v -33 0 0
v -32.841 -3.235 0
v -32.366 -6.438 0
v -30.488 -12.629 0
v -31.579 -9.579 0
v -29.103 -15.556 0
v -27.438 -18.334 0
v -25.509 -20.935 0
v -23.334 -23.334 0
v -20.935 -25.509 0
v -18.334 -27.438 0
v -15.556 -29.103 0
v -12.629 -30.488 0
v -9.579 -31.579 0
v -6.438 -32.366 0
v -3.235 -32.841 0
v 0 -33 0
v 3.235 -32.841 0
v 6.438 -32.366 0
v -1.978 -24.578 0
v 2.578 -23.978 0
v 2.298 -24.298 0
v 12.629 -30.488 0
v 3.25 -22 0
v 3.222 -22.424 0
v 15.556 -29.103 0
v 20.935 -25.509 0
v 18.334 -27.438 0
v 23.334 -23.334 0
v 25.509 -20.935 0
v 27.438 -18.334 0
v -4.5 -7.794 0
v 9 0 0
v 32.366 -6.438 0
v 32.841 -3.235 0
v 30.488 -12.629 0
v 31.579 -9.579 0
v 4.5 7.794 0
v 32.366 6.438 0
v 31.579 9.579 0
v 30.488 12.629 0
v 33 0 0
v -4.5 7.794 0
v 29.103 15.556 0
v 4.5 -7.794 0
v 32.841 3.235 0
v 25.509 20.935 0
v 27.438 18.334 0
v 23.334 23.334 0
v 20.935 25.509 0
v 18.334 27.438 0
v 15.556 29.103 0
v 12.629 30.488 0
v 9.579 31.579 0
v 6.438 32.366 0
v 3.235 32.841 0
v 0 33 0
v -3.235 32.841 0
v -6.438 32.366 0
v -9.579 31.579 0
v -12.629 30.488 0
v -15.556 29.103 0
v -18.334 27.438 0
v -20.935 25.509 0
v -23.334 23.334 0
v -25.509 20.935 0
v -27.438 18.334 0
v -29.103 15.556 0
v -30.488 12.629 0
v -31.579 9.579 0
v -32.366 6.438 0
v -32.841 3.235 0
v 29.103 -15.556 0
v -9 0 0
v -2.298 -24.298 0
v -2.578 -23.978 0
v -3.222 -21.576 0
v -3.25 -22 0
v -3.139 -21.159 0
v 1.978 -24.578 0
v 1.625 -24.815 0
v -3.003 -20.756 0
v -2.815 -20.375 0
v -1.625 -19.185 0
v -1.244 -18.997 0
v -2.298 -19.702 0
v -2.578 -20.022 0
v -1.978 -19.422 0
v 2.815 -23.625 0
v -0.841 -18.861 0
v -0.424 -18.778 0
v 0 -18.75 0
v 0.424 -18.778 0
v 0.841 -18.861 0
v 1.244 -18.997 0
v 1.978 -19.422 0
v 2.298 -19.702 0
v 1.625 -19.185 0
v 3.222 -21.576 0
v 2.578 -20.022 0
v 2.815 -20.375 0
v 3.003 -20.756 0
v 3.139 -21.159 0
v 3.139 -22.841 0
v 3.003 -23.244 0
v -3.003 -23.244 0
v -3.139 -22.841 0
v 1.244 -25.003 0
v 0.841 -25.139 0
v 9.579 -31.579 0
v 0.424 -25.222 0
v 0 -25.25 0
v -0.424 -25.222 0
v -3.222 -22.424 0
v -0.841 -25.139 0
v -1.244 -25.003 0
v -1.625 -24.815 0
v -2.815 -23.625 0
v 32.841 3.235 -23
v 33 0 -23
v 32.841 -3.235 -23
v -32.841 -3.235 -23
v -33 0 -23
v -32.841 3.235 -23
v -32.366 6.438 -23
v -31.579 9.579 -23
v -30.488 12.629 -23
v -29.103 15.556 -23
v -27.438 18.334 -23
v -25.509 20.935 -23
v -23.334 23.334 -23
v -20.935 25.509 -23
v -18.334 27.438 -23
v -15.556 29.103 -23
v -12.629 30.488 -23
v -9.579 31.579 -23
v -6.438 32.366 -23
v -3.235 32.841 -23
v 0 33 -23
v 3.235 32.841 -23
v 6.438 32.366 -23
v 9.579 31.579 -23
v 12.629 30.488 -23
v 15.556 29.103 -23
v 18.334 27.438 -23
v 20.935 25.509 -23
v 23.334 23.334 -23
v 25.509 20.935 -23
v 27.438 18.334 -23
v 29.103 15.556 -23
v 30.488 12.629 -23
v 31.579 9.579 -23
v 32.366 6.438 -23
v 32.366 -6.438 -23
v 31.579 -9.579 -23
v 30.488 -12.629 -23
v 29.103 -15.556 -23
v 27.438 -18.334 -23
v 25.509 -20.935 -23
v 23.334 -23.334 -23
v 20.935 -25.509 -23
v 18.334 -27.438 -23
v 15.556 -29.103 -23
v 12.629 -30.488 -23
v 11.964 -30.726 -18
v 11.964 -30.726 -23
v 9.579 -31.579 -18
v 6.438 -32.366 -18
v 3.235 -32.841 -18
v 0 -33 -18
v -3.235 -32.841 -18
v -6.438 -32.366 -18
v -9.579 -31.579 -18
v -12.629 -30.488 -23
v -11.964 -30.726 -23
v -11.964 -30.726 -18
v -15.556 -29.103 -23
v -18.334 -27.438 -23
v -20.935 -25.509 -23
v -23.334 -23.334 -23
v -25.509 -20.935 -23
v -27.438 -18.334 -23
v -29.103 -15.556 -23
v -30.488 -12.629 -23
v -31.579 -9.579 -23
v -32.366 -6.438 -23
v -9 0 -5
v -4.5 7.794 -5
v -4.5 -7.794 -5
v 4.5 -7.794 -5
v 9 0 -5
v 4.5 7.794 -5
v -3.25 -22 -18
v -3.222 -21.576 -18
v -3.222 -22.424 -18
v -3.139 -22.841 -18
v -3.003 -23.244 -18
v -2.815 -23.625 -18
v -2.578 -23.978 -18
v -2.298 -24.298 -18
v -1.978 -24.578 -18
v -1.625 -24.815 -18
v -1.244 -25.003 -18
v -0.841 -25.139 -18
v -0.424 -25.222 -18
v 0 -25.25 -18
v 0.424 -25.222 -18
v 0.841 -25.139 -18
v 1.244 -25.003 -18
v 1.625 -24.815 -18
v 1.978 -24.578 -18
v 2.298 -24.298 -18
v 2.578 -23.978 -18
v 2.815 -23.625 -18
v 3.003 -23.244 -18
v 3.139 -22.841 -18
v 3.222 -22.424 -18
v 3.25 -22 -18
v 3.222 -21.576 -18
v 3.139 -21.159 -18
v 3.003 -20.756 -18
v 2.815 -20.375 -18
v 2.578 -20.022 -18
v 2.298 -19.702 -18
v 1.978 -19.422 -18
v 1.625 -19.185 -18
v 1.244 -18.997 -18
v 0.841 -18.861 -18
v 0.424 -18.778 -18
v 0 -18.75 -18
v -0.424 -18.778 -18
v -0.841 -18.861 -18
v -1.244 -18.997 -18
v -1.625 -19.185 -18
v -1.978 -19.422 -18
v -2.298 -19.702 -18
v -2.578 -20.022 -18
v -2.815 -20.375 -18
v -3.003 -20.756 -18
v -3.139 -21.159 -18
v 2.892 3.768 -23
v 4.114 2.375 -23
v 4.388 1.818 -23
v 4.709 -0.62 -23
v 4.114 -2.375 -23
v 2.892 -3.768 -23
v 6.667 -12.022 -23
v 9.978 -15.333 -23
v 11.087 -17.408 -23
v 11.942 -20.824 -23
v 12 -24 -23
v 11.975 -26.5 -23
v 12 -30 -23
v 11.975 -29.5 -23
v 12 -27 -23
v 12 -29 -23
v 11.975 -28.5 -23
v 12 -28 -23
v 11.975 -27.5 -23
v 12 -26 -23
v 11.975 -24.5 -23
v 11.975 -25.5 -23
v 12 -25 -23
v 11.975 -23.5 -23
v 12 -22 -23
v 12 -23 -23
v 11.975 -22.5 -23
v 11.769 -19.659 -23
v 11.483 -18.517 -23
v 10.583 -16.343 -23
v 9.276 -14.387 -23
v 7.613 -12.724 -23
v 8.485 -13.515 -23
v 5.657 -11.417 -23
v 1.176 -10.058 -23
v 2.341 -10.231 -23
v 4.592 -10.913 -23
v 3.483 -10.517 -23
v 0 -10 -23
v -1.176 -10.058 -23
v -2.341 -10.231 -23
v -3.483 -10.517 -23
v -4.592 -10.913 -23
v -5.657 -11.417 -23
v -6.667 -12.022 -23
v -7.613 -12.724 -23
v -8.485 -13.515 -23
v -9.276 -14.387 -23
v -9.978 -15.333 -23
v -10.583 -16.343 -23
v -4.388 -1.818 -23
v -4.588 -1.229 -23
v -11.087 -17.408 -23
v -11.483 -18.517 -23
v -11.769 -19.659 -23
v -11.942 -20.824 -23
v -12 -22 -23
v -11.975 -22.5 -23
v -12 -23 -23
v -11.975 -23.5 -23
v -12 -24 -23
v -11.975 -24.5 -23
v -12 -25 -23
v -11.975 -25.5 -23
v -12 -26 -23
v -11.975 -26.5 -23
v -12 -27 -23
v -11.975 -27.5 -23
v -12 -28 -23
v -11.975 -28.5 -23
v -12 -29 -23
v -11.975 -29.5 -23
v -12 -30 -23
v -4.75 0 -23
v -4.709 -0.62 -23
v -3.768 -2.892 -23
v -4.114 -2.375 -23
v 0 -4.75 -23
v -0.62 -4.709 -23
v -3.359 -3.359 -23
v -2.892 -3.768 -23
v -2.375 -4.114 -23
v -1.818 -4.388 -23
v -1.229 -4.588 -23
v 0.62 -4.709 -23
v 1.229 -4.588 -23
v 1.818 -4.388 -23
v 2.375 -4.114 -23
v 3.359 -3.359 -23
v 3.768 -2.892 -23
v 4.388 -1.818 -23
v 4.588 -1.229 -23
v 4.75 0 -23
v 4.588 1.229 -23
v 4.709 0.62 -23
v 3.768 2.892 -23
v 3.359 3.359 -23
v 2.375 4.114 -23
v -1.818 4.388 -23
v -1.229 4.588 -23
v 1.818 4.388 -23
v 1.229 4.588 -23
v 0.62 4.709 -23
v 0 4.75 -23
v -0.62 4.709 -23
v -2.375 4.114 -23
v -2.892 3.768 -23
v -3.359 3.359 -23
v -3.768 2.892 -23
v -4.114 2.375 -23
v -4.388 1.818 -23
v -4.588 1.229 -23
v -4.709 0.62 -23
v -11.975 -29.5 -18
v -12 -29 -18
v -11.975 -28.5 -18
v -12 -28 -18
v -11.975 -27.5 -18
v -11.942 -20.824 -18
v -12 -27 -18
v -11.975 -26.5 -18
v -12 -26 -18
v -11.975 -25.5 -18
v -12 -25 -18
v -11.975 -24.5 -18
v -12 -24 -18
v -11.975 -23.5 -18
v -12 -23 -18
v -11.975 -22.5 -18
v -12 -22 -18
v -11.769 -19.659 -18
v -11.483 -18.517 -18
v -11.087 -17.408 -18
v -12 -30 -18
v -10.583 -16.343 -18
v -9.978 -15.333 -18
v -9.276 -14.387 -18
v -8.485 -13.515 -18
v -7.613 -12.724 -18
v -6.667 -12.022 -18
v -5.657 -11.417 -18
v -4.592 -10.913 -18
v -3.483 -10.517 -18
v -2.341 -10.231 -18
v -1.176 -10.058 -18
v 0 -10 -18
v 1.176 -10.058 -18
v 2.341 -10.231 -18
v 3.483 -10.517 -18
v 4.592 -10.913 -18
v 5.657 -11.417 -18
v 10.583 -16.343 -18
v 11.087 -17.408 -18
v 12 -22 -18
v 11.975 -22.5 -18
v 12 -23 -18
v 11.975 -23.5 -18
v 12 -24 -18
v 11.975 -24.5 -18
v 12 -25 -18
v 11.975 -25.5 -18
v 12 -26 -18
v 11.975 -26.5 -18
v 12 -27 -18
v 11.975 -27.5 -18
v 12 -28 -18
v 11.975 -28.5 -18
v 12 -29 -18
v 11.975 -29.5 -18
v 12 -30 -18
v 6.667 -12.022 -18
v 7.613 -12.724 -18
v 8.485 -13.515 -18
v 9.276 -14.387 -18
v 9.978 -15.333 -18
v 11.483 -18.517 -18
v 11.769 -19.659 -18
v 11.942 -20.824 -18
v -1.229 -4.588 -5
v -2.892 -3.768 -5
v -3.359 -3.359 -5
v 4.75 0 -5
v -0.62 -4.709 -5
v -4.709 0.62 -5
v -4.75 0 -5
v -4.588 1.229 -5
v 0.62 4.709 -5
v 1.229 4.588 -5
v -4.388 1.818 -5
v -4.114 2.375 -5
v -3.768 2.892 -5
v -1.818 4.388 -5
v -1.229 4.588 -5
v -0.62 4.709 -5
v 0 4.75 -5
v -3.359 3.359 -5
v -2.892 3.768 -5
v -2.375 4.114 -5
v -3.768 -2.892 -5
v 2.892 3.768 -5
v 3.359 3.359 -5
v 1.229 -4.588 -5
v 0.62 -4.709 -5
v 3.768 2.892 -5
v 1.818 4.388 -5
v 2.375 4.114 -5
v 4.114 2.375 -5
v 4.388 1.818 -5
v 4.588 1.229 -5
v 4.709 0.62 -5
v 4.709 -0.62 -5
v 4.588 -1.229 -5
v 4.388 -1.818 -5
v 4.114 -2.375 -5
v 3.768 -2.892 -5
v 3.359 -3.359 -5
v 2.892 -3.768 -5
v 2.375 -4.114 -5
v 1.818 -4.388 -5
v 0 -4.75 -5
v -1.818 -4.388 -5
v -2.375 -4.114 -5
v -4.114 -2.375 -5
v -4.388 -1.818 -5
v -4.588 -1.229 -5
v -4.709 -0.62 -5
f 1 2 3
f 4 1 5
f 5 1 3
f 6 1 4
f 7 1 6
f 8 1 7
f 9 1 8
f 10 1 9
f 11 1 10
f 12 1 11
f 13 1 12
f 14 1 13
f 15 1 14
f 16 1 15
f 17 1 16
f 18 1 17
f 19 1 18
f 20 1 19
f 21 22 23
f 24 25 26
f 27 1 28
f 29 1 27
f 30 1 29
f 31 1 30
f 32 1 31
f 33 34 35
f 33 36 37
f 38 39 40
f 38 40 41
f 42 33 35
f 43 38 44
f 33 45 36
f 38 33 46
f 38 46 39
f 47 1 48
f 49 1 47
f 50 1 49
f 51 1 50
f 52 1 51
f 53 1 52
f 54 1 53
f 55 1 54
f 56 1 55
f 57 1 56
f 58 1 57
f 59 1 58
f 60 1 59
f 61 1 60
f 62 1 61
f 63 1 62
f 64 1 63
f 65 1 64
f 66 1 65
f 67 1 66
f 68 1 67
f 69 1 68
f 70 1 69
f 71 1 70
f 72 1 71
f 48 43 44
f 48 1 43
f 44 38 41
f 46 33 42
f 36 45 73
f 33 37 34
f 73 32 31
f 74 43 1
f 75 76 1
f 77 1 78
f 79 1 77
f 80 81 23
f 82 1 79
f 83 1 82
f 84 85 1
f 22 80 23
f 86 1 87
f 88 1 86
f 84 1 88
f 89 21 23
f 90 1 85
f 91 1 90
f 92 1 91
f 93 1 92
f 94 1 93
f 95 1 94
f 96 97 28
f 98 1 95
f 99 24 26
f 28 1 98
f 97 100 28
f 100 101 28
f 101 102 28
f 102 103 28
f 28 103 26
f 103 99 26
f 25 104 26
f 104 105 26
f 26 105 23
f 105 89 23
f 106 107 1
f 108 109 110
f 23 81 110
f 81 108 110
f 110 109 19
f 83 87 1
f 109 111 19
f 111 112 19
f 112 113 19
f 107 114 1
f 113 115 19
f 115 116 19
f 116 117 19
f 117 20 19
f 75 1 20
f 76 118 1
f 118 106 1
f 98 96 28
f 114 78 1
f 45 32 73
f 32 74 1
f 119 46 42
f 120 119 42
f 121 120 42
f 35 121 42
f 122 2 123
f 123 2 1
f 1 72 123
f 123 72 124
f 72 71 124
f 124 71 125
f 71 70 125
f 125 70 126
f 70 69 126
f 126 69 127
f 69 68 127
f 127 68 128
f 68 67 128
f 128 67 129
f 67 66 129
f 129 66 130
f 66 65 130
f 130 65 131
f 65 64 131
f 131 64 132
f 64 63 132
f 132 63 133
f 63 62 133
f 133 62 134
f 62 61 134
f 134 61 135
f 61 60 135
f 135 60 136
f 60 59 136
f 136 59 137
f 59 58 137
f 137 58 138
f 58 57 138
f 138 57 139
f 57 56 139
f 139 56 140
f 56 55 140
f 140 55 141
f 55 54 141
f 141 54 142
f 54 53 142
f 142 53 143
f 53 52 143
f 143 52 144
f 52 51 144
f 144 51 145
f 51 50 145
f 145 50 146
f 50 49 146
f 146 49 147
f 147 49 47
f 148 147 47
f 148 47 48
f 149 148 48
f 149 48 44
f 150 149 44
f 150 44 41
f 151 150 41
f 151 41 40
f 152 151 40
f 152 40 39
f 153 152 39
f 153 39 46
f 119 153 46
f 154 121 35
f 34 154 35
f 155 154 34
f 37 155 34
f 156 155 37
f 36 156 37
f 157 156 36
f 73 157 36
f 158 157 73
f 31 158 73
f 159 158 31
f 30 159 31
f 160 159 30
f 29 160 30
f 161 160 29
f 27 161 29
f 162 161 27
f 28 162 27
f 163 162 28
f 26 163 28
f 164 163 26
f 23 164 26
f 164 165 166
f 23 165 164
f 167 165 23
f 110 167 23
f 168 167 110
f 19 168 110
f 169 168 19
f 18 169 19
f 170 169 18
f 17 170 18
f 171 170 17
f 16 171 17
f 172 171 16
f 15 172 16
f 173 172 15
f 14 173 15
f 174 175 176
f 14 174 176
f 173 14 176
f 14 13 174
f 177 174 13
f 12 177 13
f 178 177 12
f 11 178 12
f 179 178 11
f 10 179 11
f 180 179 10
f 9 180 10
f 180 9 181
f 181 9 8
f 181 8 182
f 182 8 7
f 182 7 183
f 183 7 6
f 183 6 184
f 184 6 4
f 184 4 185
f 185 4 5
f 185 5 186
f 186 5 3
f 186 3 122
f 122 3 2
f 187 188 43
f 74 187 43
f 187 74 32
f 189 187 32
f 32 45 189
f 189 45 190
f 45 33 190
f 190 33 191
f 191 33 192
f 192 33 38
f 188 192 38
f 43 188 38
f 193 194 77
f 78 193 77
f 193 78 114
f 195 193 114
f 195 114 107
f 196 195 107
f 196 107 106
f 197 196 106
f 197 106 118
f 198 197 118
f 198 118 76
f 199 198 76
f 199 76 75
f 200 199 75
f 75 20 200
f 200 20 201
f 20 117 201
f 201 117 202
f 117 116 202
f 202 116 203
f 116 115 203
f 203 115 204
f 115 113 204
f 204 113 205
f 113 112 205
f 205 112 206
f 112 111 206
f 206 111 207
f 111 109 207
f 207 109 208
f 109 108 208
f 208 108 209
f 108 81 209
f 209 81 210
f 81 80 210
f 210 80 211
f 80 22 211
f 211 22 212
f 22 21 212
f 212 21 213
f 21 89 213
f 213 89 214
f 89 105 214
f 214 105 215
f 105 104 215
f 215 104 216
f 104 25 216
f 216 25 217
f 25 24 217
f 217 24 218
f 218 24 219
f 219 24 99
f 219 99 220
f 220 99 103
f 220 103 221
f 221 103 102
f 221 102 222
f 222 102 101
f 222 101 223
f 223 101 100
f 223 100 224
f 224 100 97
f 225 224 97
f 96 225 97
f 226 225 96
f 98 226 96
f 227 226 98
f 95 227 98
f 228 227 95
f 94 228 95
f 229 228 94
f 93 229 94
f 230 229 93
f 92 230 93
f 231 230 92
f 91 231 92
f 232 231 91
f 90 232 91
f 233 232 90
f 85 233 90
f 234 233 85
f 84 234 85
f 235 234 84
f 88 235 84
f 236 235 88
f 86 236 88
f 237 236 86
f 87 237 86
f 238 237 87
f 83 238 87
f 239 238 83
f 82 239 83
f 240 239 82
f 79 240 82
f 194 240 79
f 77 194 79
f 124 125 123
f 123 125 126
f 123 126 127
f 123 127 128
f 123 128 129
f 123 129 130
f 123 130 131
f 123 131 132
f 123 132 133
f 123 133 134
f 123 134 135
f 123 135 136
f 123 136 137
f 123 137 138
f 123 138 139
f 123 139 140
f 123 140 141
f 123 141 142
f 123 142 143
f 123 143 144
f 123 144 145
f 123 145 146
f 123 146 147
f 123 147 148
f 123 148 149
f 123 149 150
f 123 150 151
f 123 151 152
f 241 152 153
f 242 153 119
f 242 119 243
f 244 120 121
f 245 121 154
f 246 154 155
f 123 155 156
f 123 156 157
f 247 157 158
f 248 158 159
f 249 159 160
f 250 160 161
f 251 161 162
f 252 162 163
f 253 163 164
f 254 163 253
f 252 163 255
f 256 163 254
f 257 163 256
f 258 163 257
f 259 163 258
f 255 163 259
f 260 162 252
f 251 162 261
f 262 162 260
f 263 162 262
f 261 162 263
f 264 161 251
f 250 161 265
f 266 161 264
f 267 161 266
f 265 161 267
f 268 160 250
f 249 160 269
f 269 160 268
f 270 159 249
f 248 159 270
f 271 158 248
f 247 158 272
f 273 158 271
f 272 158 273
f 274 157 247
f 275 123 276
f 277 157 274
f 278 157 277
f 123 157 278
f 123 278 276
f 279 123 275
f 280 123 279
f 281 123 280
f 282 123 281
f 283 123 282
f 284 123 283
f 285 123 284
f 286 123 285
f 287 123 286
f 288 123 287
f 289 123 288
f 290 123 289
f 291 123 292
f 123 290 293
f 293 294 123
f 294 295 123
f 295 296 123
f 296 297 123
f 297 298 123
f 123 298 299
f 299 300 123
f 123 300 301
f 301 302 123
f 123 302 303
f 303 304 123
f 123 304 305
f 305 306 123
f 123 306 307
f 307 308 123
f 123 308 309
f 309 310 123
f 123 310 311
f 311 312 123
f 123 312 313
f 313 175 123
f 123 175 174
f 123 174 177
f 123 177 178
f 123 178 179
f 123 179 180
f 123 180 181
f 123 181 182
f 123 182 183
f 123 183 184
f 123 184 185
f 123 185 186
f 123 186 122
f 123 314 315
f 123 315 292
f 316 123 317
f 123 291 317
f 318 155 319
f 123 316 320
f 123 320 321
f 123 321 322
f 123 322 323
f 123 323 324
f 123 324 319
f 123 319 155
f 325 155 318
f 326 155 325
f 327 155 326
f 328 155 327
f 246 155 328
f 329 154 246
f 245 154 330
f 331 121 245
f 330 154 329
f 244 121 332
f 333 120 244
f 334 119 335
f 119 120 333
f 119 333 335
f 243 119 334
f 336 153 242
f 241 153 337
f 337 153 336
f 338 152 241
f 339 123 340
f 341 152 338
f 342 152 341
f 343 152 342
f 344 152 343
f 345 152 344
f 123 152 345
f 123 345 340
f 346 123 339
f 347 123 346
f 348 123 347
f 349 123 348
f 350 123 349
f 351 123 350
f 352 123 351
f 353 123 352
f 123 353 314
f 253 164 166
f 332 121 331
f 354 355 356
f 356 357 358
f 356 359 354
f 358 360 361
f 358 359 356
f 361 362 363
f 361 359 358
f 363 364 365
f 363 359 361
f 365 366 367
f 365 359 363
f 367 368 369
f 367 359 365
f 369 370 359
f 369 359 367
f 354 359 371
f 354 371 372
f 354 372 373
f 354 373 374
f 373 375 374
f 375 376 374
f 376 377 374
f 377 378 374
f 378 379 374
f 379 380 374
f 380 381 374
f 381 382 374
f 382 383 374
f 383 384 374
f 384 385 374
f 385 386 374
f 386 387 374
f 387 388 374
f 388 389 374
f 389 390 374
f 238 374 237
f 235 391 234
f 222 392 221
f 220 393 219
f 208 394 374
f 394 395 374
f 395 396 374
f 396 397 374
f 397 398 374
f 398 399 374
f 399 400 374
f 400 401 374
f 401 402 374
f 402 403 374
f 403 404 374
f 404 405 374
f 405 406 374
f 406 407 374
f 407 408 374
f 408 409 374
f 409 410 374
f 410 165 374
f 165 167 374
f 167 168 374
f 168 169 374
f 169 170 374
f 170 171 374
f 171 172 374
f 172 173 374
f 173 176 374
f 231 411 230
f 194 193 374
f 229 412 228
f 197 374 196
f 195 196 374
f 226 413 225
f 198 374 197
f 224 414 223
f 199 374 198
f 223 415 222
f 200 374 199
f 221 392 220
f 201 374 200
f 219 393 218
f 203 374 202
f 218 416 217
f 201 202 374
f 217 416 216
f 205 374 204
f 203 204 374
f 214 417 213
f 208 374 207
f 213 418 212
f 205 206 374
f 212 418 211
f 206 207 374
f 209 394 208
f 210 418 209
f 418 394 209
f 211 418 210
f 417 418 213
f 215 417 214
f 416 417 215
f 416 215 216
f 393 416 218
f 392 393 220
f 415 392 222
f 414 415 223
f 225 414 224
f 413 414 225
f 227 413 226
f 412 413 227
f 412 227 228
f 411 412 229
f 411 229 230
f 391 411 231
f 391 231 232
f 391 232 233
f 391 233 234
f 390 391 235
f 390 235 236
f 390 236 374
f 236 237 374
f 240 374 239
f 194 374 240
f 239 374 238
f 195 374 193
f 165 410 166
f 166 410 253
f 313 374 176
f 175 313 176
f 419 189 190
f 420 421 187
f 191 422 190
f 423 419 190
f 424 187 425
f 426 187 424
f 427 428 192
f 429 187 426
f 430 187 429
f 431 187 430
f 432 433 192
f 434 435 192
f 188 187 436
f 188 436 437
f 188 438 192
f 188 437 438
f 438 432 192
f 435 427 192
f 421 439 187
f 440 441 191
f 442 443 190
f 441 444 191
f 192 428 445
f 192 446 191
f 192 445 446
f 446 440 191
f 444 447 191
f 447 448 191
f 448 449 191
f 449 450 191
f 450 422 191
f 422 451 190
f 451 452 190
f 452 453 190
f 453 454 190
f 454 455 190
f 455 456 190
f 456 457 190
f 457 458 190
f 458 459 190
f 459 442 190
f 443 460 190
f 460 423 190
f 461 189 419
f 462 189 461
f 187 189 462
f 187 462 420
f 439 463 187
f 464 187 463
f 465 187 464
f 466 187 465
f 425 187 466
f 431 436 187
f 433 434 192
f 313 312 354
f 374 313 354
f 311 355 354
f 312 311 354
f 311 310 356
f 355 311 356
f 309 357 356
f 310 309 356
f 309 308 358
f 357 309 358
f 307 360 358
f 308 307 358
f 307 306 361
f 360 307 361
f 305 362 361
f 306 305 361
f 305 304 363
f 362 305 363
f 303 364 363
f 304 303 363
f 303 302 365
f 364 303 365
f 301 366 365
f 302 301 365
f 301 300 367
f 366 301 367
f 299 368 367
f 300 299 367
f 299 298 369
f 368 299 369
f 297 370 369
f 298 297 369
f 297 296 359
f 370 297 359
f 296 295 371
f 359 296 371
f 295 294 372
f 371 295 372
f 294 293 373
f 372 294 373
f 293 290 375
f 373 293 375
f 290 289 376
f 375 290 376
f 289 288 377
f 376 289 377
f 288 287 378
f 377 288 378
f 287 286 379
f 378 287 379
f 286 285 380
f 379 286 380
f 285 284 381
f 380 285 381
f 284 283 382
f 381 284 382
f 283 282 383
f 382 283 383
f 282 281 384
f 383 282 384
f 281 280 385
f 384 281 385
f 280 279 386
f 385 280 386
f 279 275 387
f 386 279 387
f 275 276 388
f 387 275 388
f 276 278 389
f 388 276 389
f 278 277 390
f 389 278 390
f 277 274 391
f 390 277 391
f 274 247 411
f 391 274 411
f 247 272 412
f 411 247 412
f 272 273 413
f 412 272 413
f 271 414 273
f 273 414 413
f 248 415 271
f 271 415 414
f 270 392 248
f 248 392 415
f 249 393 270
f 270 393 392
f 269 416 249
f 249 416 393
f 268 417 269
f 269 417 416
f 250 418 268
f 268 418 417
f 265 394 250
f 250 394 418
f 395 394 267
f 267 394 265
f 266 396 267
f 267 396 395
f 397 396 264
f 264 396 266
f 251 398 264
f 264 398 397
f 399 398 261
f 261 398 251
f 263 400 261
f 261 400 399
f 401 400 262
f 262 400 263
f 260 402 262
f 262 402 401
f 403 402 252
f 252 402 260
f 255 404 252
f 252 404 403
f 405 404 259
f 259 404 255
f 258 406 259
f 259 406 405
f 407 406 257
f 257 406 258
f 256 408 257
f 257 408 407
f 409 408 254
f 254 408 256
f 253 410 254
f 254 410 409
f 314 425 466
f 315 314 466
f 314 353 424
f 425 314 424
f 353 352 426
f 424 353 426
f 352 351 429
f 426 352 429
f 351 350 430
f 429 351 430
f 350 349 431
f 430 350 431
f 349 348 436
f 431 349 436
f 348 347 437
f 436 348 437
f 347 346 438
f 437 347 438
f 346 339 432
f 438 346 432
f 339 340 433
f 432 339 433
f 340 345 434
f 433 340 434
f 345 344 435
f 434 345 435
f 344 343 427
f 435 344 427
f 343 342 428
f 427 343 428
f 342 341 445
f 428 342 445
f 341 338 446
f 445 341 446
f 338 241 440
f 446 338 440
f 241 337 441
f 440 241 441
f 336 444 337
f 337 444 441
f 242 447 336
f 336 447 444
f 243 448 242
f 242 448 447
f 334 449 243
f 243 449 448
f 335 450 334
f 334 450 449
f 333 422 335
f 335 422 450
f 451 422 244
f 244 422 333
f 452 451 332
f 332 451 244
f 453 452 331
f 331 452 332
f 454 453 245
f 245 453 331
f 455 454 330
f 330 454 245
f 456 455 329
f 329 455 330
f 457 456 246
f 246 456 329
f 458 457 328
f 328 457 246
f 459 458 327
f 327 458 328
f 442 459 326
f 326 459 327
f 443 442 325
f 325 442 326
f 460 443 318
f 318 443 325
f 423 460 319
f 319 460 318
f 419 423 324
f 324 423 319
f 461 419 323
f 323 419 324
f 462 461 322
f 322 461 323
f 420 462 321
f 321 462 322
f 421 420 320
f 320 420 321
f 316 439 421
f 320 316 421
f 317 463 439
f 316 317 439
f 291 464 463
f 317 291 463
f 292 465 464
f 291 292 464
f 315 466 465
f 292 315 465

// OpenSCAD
module mount() {
  mount_r=33;

  bolt_bare_h=18;
  bolt_head_h=5;
  bolt_head_r=9;
  bolt_shaft_r=4.75;
  full_h=bolt_bare_h+bolt_head_h;

  small_bolt_space_r=12;
  small_bolt_head_h=5;
  small_bolt_shaft_r=3.25;

  difference() {
    cylinder(r=mount_r, h=full_h, $fn=64);

    cylinder(r=bolt_head_r, h=bolt_head_h, $fn=6);
    cylinder(r=bolt_shaft_r, h=full_h, $fn=48);

    translate([0,mount_r/3*2,0]) {
      translate([0,0,full_h-small_bolt_head_h]) {
        cylinder(r=small_bolt_space_r, h=small_bolt_head_h, $fn=64);
        for(y=[1,2,3,4,5,6,7,8])
          translate([0, y, 0])
            cylinder(r=small_bolt_space_r, h=small_bolt_head_h, $fn=64);
      }
      cylinder(r=small_bolt_shaft_r, h=full_h, $fn=48);
    }
  }
}

scale([-1,-1,-1])
mount();
